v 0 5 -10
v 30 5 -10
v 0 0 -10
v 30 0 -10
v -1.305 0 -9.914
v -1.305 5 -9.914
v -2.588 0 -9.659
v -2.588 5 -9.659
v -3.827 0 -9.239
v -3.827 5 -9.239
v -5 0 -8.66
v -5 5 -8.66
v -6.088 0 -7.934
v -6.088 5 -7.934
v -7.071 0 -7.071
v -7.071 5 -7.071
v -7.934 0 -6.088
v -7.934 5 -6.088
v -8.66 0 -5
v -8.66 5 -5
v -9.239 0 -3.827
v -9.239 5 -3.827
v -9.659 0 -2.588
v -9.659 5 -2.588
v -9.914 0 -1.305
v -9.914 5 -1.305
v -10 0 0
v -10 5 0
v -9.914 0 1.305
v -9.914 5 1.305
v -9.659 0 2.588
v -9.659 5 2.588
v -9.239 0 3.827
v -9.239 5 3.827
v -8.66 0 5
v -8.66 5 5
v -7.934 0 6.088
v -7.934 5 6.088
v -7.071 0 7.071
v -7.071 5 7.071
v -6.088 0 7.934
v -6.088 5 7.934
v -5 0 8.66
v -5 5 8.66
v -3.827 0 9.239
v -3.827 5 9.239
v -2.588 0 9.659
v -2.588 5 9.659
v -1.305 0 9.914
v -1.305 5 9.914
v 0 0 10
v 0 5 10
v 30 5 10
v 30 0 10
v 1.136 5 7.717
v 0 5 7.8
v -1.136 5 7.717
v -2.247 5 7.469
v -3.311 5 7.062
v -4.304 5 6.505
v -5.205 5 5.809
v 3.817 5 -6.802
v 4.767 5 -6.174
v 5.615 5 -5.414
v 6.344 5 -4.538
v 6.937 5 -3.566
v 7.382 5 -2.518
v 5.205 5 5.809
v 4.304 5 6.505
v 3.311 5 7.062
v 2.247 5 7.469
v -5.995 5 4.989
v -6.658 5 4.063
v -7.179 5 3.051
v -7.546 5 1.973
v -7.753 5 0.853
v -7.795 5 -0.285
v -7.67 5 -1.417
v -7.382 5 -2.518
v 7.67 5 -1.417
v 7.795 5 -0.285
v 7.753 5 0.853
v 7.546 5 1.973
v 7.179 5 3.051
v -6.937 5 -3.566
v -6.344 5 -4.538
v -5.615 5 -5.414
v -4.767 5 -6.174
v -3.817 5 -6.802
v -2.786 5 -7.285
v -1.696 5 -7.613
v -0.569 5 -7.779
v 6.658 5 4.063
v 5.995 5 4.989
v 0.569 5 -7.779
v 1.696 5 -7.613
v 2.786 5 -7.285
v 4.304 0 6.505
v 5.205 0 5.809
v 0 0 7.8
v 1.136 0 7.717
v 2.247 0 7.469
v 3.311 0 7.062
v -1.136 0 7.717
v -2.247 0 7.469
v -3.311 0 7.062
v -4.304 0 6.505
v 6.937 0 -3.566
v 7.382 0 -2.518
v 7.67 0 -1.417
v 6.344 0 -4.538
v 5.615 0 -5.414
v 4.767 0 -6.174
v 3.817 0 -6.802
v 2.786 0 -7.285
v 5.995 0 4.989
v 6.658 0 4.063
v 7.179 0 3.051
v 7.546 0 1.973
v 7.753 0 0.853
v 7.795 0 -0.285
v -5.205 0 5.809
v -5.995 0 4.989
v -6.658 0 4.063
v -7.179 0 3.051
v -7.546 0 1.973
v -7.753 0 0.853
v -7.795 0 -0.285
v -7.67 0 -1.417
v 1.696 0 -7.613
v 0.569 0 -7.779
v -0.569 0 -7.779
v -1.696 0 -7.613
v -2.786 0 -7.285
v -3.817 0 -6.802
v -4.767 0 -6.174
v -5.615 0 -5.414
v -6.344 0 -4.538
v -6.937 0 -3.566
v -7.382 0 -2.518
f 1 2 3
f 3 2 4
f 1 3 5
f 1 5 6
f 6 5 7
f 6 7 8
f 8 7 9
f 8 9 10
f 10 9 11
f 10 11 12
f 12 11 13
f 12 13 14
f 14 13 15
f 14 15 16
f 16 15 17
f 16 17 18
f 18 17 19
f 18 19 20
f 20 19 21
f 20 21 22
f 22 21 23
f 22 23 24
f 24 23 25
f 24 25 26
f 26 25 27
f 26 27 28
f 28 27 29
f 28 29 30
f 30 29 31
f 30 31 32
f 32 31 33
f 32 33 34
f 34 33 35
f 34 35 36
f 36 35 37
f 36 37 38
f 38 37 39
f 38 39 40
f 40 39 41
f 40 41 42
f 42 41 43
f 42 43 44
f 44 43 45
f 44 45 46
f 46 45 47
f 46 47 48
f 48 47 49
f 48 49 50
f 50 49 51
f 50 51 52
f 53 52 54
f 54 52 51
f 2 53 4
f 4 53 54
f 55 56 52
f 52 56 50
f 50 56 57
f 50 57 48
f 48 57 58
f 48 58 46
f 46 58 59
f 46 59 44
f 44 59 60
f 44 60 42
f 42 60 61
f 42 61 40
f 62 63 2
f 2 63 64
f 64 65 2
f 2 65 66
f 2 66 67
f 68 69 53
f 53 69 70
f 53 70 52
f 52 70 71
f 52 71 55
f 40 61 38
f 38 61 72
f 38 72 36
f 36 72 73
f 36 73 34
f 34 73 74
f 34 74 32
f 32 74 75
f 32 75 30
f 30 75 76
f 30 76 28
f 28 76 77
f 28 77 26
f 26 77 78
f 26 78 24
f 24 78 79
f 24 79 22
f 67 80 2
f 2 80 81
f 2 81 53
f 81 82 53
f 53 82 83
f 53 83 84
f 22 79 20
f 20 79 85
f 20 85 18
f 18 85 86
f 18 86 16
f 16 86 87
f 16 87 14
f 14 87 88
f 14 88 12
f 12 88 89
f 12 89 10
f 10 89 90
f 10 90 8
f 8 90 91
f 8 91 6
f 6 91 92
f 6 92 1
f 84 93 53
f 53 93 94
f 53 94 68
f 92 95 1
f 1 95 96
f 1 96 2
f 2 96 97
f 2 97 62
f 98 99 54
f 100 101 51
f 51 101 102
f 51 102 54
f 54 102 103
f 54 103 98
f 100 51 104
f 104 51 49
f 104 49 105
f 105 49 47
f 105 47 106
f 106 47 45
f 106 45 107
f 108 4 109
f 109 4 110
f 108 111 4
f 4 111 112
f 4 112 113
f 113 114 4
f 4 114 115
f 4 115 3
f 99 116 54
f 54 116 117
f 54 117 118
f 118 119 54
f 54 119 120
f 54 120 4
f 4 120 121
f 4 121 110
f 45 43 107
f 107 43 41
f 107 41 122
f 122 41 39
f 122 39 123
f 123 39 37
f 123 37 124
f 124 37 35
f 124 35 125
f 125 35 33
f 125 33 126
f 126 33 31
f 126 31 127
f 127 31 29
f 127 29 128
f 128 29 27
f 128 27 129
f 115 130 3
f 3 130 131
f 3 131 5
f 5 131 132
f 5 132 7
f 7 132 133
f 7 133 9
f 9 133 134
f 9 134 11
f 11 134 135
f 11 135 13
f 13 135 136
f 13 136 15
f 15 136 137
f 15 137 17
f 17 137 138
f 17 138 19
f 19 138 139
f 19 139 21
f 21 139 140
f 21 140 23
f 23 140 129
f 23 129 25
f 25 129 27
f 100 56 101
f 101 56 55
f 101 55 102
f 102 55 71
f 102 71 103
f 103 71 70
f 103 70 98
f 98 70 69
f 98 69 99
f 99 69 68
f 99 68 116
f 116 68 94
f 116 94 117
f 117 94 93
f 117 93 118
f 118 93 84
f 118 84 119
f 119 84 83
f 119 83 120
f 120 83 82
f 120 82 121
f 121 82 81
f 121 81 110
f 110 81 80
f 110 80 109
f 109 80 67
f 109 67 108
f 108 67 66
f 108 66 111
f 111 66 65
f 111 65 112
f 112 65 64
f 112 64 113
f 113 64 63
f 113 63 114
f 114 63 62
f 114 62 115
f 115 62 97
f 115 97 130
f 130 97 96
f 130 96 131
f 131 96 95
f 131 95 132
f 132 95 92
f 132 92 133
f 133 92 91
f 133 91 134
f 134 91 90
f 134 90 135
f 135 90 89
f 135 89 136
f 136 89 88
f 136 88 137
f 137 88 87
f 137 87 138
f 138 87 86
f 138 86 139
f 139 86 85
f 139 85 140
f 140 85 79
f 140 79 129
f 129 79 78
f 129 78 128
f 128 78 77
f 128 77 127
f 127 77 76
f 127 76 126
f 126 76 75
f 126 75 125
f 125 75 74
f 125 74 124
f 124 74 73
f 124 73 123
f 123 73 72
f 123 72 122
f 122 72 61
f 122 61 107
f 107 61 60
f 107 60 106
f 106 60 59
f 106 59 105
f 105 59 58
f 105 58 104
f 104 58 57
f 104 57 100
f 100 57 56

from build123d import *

# Parameters (mm, degrees)
SALIENTE_EXTRUIR1_DEPTH = 5
CROQUIS2_R              = 7.8
CORTAR_EXTRUIR1_DEPTH   = 5


with BuildPart() as part:
    # Croquis1 → Saliente-Extruir1 (new body)
    with BuildSketch(Plane(origin=(0, 0, 0), x_dir=(1, 0, 0), z_dir=(0, 1, 0))):
        with BuildLine():
            Line((0, -10), (30, -10))
            Line((30, -10), (30, 10))
            Line((30, 10), (0, 10))
            ThreePointArc((0, 10), (-10, 0), (0, -10))
        make_face()
    extrude(amount=SALIENTE_EXTRUIR1_DEPTH)

    # Croquis2 → Cortar-Extruir1 (cut)
    with BuildSketch(Plane(origin=(0, 5, 0), x_dir=(1, 0, 0), z_dir=(0, 1, 0))):
        with Locations(Location((0, 0, 0), (0, 0, 270))):
            Circle(CROQUIS2_R)
    extrude(amount=-CORTAR_EXTRUIR1_DEPTH, mode=Mode.SUBTRACT)


solid = part.part
